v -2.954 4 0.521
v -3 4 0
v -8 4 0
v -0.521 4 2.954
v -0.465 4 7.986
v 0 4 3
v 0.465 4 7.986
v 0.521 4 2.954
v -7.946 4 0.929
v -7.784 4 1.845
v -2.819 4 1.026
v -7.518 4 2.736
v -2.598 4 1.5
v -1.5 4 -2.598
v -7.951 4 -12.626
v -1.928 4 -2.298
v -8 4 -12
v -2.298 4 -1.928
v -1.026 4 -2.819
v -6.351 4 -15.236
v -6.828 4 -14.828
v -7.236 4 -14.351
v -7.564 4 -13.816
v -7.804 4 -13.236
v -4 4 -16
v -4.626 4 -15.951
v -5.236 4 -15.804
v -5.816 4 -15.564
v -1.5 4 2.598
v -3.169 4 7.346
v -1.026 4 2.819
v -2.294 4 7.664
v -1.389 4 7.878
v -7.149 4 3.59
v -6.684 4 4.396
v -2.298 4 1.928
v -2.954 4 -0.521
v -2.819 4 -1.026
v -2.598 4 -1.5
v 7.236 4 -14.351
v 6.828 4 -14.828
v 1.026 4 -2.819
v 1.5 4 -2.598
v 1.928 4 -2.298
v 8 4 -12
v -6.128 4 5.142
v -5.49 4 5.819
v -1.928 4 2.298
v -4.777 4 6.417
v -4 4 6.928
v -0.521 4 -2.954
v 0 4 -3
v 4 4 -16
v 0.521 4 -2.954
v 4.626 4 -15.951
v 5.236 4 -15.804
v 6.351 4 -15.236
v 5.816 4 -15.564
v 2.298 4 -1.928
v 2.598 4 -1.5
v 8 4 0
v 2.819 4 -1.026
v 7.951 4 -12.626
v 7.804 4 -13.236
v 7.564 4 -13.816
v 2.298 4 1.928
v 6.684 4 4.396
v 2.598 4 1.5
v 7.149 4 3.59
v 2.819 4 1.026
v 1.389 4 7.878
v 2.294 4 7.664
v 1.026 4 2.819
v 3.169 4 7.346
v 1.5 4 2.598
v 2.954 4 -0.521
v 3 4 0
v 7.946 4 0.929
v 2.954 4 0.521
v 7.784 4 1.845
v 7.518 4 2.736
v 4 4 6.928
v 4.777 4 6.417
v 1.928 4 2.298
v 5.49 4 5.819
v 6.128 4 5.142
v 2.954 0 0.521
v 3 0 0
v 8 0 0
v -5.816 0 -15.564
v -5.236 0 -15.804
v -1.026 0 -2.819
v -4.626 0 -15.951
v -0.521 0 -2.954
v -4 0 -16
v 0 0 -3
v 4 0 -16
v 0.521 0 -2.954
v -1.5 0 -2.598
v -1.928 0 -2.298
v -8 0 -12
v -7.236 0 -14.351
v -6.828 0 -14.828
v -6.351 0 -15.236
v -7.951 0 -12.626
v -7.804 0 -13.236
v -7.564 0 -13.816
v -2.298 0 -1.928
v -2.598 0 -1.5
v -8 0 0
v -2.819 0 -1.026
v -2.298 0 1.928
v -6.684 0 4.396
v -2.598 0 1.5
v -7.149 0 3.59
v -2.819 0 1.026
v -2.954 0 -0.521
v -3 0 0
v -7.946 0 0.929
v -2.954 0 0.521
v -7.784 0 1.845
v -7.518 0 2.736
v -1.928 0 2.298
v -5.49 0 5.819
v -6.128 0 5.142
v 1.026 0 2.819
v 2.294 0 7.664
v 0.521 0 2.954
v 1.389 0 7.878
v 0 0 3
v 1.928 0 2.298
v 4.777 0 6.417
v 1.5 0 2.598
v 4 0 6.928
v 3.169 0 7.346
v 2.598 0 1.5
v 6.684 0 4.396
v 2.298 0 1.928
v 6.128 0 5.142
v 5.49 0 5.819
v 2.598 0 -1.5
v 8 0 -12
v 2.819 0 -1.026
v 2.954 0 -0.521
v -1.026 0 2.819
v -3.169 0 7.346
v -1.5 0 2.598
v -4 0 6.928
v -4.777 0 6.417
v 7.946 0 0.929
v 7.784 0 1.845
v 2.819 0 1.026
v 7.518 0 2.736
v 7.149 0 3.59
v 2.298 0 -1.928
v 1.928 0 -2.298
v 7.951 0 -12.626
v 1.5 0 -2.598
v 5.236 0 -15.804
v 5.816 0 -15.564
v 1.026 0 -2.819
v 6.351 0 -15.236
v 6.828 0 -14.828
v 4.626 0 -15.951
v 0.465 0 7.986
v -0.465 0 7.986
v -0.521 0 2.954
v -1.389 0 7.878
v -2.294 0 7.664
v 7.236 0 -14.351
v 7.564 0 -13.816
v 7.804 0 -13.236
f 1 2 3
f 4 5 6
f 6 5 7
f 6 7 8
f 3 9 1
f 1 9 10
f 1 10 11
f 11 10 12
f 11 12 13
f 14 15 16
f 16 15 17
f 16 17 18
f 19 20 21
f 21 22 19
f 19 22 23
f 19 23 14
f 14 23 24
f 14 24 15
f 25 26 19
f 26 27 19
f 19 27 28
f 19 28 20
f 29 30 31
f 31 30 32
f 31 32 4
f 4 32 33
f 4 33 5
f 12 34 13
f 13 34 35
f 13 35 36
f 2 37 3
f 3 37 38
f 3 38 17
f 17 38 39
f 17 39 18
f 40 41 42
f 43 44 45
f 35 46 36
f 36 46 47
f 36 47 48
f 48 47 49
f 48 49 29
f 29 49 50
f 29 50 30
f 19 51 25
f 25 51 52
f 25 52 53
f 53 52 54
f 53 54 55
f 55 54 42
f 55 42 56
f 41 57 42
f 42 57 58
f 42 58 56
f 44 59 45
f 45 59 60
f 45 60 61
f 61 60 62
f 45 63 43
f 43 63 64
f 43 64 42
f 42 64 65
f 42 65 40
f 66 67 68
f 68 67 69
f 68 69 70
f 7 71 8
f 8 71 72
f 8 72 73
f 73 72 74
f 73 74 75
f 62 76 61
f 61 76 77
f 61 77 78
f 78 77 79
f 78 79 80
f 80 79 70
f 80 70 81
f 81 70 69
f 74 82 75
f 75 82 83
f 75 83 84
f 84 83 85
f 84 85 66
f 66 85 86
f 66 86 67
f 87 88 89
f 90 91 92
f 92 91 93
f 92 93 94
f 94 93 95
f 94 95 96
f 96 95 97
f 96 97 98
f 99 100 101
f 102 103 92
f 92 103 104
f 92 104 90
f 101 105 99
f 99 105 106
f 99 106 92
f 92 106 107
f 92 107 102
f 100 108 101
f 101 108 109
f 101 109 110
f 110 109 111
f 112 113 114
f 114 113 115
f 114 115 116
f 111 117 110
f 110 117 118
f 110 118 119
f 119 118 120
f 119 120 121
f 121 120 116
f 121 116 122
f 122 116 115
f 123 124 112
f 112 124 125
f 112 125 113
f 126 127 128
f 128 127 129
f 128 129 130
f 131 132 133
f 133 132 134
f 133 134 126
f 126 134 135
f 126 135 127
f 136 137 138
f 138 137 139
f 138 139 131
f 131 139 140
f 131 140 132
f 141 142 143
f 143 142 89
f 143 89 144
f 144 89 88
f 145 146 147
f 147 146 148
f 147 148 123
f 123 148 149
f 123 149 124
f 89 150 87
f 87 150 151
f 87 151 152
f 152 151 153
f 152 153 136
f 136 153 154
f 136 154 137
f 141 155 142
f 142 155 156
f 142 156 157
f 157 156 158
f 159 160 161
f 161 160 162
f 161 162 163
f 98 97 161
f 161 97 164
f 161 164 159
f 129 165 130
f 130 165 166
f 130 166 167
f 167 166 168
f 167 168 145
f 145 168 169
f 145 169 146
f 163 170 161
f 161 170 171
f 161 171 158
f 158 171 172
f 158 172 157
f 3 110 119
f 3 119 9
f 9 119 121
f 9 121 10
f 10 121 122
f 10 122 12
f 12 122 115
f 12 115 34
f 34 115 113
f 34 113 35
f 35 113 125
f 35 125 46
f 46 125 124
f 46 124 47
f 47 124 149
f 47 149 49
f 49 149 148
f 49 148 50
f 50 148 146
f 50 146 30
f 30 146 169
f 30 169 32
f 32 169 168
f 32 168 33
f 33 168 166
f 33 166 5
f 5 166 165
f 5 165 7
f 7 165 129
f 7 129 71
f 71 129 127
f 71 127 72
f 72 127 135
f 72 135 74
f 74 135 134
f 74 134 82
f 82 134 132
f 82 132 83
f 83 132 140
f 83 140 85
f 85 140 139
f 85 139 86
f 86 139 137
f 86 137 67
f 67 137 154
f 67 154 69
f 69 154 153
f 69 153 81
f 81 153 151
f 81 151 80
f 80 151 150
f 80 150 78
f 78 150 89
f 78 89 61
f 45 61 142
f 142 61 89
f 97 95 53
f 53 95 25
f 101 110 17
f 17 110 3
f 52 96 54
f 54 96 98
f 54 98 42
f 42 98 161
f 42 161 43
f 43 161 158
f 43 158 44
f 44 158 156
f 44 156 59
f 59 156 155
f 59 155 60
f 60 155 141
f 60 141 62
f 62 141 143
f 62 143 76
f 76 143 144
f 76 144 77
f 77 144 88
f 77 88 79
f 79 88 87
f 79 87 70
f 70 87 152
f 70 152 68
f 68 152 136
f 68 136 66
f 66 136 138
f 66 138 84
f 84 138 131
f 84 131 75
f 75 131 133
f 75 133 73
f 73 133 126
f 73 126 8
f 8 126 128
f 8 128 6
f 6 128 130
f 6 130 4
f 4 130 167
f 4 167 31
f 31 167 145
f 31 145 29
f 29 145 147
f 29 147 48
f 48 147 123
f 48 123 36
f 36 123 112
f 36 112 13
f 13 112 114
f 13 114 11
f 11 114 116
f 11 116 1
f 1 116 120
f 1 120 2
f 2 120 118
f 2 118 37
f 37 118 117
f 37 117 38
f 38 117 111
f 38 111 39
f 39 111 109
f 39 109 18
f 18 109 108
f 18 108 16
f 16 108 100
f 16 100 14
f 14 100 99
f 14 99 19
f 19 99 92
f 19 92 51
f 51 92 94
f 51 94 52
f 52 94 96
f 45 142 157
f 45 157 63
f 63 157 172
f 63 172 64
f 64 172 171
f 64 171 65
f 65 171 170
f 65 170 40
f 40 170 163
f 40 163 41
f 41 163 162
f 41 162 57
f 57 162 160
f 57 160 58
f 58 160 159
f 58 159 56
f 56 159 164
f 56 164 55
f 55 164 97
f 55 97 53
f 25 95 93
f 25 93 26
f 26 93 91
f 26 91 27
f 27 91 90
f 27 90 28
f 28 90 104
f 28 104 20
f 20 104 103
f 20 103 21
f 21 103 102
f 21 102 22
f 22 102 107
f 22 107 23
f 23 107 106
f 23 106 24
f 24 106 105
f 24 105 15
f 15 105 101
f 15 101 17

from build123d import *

# Parameters (mm, degrees)
SKETCH1_R           = 3
BOSS_EXTRUDE1_DEPTH = 4
FILLET1_R           = 4


with BuildPart() as part:
    # Sketch1 → Boss-Extrude1 (new body)
    with BuildSketch(Plane(origin=(0, 0, 0), x_dir=(1, 0, 0), z_dir=(0, 1, 0))):
        with BuildLine():
            Line((-8, 0), (-8, 16))
            Line((-8, 16), (8, 16))
            Line((8, 16), (8, 0))
            ThreePointArc((8, 0), (0, -8), (-8, 0))
        make_face()
        with Locations(Location((0, 0, 0), (0, 0, 270))):
            Circle(SKETCH1_R, mode=Mode.SUBTRACT)
    extrude(amount=BOSS_EXTRUDE1_DEPTH)

    # Fillet1
    fillet1_edges = [part.edges().sort_by_distance(p)[0] for p in [
        (-8, 2, -16),
        (8, 2, -16),
    ]]
    fillet(fillet1_edges, radius=FILLET1_R)


solid = part.part
